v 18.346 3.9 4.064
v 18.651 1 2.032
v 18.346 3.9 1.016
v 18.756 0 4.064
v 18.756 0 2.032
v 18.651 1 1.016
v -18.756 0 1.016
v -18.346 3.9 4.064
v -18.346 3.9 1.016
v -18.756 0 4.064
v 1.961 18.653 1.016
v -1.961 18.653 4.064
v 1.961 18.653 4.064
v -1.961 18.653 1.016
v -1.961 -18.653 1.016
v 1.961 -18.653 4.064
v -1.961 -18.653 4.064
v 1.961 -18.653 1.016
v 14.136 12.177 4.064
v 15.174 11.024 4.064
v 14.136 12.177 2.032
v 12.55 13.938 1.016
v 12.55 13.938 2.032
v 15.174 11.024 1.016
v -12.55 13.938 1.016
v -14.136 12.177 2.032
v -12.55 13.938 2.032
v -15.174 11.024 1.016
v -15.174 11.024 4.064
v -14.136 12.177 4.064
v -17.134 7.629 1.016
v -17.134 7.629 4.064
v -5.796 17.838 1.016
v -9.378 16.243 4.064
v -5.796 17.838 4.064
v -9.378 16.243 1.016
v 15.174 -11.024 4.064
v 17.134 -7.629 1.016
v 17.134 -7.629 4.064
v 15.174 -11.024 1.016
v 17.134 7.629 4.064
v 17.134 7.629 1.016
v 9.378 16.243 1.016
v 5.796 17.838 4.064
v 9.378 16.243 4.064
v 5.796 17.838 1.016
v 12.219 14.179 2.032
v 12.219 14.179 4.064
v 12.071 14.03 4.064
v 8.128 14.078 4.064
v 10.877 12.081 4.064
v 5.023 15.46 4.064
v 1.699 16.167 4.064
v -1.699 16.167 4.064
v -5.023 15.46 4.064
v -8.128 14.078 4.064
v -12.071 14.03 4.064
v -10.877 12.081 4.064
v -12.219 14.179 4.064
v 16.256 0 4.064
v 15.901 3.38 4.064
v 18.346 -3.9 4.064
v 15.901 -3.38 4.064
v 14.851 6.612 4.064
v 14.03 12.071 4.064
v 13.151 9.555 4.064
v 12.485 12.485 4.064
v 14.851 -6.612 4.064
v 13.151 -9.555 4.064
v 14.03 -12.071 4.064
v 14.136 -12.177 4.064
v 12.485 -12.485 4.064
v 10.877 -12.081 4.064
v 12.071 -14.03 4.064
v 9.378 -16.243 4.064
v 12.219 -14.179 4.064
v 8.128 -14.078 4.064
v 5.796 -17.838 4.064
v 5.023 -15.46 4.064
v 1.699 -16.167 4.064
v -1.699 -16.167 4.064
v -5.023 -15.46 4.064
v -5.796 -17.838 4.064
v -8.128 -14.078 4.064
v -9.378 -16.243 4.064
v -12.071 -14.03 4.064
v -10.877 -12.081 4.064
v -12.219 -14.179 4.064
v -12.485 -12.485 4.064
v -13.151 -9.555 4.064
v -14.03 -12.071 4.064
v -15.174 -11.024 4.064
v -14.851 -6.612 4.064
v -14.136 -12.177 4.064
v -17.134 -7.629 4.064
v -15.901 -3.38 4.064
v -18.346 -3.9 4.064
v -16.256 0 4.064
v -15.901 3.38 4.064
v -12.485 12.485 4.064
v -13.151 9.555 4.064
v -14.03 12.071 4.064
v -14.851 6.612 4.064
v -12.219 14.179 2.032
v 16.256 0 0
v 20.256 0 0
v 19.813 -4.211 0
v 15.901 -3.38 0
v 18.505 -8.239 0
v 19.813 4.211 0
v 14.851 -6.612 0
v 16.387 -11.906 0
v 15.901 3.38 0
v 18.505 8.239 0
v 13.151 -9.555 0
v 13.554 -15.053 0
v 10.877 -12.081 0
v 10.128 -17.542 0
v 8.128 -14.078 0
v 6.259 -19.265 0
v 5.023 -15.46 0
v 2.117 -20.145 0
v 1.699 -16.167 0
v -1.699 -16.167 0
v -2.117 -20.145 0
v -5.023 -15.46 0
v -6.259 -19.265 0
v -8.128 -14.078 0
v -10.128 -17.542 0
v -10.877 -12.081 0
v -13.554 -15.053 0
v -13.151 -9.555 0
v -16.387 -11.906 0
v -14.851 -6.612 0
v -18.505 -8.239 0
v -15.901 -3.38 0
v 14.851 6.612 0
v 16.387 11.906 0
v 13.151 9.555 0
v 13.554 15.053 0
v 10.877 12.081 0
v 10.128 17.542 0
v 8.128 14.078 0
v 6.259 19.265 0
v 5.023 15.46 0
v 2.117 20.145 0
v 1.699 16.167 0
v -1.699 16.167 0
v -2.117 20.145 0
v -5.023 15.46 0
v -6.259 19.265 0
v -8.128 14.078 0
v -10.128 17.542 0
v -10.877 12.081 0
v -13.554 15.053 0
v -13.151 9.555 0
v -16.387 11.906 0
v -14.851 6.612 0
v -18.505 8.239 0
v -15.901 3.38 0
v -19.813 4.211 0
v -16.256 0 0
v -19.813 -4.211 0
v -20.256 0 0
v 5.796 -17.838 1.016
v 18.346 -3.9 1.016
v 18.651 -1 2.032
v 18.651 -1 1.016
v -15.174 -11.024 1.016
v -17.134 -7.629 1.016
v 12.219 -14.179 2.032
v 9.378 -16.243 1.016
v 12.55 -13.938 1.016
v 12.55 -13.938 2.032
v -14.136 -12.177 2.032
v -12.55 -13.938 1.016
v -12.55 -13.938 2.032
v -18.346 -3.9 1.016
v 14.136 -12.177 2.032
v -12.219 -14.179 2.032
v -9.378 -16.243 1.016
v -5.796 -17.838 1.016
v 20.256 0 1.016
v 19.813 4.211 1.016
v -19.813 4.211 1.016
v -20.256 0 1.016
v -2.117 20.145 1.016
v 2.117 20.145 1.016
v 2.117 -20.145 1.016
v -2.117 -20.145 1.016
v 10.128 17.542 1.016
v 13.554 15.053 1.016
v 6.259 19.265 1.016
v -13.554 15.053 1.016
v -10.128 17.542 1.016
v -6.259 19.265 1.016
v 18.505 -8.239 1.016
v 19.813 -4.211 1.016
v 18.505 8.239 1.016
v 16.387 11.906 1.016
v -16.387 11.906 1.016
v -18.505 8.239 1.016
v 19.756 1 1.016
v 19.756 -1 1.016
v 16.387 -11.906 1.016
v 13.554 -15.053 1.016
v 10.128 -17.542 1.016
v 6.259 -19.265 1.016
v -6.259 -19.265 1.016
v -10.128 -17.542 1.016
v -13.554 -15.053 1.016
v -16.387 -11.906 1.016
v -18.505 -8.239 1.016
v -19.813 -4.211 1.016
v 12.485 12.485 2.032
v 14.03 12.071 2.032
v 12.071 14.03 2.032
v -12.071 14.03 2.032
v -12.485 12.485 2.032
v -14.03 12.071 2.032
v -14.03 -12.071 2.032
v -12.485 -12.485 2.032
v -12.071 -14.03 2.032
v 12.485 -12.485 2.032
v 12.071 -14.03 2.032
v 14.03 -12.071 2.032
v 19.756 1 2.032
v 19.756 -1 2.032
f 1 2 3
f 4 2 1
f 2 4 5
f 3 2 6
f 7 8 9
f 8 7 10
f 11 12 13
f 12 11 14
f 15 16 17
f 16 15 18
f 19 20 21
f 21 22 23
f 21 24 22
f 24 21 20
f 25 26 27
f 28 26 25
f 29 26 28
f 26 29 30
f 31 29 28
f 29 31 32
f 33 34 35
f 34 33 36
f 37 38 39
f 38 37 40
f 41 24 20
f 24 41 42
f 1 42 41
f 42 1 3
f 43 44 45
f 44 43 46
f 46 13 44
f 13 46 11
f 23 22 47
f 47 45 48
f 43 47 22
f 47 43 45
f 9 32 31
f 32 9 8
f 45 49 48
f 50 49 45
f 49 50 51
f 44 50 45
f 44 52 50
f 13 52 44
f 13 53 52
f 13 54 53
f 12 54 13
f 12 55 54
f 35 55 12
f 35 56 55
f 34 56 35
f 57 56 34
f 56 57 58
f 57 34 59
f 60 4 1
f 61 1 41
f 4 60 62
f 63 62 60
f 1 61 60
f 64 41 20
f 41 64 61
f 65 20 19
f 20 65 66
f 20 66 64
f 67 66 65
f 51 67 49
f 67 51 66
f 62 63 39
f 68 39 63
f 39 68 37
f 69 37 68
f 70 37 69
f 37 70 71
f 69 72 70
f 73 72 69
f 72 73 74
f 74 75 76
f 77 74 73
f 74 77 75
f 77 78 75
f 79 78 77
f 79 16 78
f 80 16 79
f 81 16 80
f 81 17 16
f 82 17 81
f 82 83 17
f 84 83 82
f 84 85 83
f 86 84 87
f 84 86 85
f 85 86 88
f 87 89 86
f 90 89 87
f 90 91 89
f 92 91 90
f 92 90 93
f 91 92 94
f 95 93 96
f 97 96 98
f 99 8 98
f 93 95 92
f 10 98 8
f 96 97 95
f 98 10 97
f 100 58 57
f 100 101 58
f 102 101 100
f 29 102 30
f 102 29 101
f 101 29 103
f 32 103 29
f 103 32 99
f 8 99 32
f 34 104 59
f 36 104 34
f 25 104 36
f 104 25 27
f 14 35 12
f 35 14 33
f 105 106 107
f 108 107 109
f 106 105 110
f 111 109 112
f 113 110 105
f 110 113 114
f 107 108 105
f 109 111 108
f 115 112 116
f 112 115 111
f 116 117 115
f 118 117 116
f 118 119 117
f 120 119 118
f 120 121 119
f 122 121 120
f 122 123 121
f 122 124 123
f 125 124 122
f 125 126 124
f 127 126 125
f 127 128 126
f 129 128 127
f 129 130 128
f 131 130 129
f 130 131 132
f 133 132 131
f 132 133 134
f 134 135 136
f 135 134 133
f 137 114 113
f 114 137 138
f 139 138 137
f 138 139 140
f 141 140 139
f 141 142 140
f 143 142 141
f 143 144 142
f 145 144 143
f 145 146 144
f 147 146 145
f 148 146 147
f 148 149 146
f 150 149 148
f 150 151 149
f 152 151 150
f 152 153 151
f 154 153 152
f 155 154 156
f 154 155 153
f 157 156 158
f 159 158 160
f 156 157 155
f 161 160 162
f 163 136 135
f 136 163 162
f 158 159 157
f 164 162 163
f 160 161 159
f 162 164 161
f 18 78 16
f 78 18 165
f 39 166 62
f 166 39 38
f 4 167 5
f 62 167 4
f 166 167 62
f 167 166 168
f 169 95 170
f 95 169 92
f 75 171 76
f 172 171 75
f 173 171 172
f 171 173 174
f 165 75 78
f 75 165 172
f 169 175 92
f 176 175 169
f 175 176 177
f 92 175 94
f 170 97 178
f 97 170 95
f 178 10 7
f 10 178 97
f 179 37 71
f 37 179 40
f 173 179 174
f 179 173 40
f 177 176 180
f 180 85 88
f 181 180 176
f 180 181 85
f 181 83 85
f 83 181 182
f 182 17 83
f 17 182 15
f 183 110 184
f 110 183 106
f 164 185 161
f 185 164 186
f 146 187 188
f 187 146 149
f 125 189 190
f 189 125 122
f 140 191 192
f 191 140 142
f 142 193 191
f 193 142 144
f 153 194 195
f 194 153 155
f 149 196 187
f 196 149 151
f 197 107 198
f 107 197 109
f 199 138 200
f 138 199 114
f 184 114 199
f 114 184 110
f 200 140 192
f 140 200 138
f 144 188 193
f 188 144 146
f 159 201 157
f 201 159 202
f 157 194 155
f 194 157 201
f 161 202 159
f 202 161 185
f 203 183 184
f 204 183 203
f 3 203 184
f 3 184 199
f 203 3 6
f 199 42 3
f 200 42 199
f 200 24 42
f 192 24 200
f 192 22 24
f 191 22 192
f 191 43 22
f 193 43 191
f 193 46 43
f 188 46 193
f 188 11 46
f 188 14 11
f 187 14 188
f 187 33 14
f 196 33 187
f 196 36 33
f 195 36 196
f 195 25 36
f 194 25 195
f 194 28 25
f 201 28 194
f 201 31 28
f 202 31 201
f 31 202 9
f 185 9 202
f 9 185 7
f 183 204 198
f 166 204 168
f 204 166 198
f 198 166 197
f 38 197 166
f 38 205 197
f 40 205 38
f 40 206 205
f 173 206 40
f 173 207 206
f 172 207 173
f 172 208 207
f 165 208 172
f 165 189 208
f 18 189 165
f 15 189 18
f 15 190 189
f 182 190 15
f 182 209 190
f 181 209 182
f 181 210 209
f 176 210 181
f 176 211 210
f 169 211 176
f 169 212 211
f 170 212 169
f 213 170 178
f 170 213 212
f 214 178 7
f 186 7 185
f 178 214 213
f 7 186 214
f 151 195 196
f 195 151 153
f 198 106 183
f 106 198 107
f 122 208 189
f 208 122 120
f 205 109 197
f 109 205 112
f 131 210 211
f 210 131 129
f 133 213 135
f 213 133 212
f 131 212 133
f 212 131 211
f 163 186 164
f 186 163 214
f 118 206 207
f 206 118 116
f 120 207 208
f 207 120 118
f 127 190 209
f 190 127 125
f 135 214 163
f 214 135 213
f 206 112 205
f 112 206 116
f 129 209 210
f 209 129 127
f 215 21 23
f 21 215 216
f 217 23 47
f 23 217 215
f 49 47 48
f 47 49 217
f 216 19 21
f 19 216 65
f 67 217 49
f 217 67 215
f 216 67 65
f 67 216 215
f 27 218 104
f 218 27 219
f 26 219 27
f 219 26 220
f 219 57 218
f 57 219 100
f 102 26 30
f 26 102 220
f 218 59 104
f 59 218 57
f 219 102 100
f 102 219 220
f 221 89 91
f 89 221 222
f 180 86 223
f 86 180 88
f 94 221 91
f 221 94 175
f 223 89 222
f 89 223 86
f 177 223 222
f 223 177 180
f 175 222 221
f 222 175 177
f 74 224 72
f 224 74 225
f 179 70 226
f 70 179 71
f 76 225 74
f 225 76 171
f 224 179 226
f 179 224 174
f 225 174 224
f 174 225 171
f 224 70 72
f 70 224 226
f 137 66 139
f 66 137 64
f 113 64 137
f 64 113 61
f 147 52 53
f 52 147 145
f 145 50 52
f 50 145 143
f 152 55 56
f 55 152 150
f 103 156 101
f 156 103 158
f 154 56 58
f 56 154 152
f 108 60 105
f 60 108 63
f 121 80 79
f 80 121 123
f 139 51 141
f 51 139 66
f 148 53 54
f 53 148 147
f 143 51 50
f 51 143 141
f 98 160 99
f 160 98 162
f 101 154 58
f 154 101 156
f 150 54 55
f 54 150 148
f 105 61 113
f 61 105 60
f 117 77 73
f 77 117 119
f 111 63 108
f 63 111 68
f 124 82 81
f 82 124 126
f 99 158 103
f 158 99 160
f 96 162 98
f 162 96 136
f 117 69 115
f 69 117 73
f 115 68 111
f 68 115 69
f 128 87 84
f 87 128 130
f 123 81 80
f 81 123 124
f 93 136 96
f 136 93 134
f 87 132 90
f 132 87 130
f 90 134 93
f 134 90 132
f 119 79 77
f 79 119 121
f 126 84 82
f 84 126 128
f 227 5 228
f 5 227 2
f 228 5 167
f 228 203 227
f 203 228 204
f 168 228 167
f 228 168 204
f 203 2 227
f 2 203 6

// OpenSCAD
// Example STL Generator for Testing
// Creates a simple display mount for testing the STL viewer

// Parameters for GC9A01 display mount
diameter = 32.512;  // 1.28 inches in mm
thickness = 2.032;  // 0.08 inches in mm
mount_holes = 4;
hole_diameter = 2.54; // 0.1 inches in mm
hole_spacing = 27.94;  // 1.1 inches in mm

module example_display_mount() {
    difference() {
        // Main mounting ring
        union() {
            cylinder(h=thickness*2, d=diameter+5);
            // Reinforcement ring
            cylinder(h=thickness*0.5, d=diameter+8);
        }
        
        // Display cutout
        translate([0,0,-1]) 
            cylinder(h=thickness*2+2, d=diameter);
        
        // Mounting holes for display
        for(i=[0:mount_holes-1]) {
            rotate([0, 0, i*(360/mount_holes)]) {
                translate([hole_spacing/2, 0, -1])
                    cylinder(h=thickness*2+2, d=hole_diameter);
            }
        }
        
        // Case mounting holes (M3 screws)
        for(i=[0:3]) {
            rotate([0, 0, i*90 + 45]) {
                translate([(diameter+6)/2, 0, thickness])
                    cylinder(h=thickness+1, d=3.2);
            }
        }
    }
    
    // Cable management channel
    translate([diameter/2 + 2, 0, thickness*0.5])
        cube([3, 2, thickness], center=true);
}

// Generate the example mount
example_display_mount();
